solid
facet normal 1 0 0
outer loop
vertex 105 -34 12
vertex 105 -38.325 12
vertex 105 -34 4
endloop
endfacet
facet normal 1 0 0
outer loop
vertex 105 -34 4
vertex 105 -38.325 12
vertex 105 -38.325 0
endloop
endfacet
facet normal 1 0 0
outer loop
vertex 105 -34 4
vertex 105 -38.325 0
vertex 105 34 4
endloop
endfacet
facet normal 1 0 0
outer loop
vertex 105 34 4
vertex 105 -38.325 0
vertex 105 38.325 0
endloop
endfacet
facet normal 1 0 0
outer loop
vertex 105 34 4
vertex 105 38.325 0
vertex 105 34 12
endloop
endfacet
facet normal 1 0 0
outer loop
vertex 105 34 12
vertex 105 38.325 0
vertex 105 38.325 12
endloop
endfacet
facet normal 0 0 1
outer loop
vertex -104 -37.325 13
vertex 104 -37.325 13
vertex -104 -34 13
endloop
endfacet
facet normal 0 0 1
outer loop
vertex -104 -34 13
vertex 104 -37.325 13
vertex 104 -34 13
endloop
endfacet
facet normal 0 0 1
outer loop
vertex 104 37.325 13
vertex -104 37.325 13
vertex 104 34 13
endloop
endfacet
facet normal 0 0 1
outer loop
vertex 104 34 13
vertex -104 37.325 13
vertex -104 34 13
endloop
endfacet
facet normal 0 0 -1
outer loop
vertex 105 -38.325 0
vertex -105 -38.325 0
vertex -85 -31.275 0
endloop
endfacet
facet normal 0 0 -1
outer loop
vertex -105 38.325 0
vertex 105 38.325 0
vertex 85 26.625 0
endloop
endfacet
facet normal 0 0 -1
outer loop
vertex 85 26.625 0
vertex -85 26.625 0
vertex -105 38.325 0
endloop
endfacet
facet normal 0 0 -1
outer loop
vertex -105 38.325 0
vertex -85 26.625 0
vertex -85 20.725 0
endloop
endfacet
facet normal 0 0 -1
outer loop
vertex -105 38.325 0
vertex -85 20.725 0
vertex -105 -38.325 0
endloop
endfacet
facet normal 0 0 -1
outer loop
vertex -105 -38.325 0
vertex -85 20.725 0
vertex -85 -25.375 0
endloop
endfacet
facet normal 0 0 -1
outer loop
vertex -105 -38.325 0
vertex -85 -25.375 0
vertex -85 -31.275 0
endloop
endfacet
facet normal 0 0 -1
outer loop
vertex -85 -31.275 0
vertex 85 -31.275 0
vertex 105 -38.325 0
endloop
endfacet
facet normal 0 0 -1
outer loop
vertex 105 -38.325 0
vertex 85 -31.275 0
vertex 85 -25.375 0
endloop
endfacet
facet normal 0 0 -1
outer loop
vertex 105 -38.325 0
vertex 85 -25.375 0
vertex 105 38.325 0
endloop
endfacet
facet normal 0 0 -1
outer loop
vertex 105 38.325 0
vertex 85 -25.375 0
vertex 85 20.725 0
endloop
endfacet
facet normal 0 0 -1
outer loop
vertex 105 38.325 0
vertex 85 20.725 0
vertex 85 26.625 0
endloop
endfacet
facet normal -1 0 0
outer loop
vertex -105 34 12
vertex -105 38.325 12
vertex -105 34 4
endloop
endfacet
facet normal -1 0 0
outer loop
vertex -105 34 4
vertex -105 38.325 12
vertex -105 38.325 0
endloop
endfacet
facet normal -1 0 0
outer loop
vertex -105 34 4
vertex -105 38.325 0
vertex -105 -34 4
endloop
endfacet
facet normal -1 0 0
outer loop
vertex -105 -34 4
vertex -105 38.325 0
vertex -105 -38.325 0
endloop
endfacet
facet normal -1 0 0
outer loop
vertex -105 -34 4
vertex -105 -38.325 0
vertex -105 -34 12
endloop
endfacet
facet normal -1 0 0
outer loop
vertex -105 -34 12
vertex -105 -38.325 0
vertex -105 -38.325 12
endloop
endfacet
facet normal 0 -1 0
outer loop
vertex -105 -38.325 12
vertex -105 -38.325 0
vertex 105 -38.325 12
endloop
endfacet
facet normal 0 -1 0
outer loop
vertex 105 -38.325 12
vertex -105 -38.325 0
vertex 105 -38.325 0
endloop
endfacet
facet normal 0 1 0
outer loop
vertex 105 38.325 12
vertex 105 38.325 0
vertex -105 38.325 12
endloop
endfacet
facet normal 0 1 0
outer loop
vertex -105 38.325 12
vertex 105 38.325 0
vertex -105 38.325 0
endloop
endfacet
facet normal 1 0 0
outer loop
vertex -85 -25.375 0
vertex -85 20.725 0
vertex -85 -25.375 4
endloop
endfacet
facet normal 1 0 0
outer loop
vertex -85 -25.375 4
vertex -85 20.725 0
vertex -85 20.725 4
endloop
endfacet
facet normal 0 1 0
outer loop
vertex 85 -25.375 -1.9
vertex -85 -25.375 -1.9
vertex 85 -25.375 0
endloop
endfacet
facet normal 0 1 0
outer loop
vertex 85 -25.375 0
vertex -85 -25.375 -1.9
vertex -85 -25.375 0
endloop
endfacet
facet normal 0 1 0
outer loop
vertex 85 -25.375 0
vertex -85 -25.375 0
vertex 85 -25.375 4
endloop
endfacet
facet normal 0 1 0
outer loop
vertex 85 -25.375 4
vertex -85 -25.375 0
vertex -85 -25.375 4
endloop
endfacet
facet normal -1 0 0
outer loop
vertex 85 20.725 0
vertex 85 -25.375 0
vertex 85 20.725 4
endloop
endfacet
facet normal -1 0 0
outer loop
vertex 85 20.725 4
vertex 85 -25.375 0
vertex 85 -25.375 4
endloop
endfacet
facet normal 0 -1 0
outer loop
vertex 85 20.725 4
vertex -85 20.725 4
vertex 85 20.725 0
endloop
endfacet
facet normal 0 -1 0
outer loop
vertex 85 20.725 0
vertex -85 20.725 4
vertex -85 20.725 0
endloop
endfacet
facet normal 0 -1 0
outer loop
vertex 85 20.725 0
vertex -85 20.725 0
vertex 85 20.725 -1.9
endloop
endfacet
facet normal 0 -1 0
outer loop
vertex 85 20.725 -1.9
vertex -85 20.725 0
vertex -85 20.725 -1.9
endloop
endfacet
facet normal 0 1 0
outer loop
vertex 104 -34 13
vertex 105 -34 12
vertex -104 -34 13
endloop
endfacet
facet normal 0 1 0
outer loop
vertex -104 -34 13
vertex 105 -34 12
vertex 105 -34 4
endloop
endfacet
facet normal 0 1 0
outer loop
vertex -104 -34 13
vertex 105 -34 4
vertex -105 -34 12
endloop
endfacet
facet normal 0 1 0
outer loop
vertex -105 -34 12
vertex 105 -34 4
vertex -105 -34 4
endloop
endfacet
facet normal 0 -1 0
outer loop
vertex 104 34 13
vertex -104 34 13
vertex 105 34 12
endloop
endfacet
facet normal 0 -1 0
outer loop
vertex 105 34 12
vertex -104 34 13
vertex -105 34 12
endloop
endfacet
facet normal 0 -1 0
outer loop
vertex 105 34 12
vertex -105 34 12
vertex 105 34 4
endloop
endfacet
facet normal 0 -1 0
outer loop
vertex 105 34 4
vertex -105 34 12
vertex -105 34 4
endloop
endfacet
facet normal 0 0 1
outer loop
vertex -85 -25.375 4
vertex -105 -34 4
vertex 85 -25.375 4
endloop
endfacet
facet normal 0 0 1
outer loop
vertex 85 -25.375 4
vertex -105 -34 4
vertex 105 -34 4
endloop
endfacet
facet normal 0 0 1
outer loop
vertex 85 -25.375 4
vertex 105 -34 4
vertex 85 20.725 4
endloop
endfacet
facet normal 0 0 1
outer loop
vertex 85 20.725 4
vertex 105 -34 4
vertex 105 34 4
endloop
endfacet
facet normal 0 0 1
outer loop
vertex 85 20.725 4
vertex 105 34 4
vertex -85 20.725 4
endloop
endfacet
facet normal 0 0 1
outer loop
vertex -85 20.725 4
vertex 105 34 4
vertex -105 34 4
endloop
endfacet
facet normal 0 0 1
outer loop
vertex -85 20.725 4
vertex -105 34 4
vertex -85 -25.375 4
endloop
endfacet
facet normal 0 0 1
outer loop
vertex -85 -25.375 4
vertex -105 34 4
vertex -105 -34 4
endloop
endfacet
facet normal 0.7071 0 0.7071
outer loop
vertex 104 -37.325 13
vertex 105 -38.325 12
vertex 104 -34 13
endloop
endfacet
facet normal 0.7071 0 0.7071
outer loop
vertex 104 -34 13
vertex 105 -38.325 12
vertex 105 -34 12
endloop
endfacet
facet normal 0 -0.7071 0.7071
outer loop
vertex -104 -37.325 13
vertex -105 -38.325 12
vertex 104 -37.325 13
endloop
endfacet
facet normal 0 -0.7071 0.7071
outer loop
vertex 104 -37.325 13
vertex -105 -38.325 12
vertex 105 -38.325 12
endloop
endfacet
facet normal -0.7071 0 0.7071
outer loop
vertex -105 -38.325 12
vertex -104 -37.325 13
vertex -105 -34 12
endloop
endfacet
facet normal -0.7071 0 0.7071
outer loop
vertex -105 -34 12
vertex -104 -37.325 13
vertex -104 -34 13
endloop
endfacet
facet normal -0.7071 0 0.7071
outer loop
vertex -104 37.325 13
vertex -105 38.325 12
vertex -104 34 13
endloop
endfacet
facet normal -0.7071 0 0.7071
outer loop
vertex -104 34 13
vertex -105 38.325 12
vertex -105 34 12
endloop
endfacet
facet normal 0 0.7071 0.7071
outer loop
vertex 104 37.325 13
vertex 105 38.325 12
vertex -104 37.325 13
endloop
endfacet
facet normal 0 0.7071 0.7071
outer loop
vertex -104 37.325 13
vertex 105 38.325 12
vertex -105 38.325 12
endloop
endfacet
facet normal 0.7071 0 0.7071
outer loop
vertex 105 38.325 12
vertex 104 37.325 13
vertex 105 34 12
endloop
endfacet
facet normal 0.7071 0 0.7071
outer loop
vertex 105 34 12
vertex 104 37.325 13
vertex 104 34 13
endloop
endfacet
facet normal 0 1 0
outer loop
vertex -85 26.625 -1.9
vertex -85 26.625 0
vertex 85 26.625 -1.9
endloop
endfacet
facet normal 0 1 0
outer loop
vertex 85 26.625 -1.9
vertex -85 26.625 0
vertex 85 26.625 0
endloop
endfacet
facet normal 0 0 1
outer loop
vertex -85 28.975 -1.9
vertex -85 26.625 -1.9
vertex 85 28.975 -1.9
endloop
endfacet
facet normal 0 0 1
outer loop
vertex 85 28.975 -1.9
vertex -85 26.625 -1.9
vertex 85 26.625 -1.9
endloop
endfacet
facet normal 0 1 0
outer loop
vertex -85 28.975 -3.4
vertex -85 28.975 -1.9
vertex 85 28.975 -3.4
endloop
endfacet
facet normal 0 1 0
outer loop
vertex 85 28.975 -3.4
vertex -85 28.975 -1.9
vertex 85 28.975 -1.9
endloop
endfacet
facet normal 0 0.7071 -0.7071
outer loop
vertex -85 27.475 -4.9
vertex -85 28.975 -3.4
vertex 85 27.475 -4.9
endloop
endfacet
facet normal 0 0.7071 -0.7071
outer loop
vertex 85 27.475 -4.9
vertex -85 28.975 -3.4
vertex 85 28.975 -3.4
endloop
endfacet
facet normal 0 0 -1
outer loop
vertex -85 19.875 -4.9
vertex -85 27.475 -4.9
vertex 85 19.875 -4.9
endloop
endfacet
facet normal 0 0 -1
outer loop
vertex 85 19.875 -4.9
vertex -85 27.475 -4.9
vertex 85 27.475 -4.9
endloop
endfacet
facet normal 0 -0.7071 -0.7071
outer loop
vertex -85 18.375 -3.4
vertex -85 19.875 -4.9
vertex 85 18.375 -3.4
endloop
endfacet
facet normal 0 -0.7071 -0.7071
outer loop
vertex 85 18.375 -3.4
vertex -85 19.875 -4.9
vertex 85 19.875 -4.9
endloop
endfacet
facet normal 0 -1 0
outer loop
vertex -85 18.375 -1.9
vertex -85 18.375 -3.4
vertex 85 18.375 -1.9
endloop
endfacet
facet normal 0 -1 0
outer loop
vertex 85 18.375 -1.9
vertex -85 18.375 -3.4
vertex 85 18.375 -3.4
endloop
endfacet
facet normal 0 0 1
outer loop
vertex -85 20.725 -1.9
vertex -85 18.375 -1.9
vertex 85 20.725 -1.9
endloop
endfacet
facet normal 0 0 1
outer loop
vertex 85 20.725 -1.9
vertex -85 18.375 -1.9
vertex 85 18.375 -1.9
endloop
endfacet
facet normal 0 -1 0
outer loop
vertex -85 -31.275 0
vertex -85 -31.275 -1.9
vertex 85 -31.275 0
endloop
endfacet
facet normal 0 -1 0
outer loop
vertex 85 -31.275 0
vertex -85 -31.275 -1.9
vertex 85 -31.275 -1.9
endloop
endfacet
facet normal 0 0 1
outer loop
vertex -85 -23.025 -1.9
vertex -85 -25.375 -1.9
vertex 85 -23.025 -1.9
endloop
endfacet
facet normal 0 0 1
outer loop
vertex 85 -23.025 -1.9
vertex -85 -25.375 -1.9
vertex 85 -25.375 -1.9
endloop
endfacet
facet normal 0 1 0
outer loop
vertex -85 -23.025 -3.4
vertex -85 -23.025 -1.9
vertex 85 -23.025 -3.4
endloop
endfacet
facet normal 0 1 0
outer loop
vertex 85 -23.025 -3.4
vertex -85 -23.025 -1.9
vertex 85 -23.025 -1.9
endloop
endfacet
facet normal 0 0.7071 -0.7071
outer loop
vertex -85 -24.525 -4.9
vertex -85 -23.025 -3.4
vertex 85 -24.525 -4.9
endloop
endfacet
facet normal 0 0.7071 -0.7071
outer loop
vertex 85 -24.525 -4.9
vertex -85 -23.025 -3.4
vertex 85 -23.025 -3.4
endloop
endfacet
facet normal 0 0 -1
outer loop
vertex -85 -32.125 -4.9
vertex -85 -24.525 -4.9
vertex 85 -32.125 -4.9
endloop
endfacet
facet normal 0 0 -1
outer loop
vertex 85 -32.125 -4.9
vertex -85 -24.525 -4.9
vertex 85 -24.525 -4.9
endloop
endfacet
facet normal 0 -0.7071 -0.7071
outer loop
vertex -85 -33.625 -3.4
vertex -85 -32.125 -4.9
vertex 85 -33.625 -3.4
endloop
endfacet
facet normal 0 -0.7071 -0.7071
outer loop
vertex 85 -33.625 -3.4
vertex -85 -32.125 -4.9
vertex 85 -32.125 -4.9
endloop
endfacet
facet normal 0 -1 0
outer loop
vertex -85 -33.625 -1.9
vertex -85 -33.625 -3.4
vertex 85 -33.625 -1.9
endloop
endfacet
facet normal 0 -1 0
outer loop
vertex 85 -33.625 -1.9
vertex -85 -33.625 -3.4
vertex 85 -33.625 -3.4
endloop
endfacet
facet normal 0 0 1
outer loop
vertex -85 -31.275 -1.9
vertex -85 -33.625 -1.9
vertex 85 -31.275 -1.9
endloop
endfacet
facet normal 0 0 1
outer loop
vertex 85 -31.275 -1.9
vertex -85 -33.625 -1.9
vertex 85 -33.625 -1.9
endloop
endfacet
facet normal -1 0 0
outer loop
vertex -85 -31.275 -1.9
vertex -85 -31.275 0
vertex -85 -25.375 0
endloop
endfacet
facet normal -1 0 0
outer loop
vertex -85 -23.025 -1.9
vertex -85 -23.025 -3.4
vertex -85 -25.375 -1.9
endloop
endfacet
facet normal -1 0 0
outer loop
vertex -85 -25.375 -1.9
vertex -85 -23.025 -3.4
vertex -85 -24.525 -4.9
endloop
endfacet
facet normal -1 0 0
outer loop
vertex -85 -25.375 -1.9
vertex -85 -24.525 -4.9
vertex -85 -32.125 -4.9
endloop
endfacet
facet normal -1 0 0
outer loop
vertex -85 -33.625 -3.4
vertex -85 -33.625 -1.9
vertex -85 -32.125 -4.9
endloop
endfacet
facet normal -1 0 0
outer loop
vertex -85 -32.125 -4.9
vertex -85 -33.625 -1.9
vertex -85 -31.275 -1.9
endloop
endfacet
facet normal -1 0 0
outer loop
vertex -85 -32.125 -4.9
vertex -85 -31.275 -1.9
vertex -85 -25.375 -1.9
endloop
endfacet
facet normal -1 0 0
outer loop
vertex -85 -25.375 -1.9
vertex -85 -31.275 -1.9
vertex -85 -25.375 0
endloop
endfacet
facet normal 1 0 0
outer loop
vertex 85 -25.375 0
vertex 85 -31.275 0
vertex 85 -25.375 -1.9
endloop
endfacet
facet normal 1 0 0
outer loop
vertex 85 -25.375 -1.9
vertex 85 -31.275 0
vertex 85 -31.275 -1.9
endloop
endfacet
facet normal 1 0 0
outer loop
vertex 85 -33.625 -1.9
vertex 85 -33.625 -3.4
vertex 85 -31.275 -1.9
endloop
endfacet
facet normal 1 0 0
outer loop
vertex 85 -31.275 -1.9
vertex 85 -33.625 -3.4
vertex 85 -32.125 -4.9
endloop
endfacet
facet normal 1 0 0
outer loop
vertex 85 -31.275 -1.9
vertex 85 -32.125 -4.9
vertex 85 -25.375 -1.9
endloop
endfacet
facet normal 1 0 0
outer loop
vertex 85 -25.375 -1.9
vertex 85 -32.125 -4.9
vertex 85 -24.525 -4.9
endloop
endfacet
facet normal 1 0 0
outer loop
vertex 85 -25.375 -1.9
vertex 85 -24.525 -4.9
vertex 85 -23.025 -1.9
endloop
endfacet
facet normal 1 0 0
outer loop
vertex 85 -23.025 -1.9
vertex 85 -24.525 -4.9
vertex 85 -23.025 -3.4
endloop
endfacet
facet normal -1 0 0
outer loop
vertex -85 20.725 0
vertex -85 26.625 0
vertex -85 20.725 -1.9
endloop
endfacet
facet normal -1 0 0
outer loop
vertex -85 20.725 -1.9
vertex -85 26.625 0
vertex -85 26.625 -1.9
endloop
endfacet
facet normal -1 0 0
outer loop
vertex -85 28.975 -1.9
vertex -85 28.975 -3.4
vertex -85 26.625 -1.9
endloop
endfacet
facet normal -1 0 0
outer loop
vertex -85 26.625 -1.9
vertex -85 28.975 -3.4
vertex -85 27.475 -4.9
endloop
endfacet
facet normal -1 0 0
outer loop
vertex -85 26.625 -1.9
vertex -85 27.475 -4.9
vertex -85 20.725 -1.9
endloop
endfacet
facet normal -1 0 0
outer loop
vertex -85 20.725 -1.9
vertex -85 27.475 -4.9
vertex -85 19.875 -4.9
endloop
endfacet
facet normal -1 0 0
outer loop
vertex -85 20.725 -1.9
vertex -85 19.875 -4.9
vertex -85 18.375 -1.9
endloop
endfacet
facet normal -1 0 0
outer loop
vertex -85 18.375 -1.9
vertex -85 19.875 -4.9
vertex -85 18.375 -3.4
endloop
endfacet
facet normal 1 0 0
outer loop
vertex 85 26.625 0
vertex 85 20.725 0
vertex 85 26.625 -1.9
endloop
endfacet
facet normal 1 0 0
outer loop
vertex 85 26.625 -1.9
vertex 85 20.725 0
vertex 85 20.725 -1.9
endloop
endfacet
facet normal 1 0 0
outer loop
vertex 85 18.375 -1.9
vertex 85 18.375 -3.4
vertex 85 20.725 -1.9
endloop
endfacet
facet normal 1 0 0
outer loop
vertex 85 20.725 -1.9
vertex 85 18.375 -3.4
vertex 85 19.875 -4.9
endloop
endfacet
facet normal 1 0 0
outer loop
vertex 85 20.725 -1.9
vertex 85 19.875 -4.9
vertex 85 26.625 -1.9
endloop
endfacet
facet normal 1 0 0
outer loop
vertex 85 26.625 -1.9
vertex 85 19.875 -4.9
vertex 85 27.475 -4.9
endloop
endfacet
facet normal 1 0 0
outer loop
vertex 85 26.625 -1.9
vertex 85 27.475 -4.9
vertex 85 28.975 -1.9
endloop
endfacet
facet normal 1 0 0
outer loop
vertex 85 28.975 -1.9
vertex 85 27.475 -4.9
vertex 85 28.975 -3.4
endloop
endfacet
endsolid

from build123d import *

# Parameters (mm, degrees)
SKETCH_1_W          = 210
SKETCH_1_H          = 76.65
SKETCH_1_W_2        = 170
SKETCH_1_H_2        = 46.1
EXTRUDE_1_DEPTH     = 13
SKETCH_2_W          = 210
SKETCH_2_H          = 68
CUT_EXTRUDE_1_DEPTH = 9
CHAMFER_1_SIZE      = 1
EXTRUDE_2_DEPTH     = 210
SKETCH_7_W          = 20
SKETCH_7_H          = 76.65
CUT_EXTRUDE_2_DEPTH = 4.9


with BuildPart() as part:
    # 草图1 → 凸台-拉伸1 (new body)
    with BuildSketch(Plane.XY):
        Rectangle(SKETCH_1_W, SKETCH_1_H)
        with Locations((0, -2.325)):
            Rectangle(SKETCH_1_W_2, SKETCH_1_H_2, mode=Mode.SUBTRACT)
    extrude(amount=EXTRUDE_1_DEPTH)

    # 草图2 → 切除-拉伸1 (cut)
    with BuildSketch(Plane.XY.offset(13)):
        Rectangle(SKETCH_2_W, SKETCH_2_H)
    extrude(amount=-CUT_EXTRUDE_1_DEPTH, mode=Mode.SUBTRACT)

    # 倒角1
    chamfer_1_edges = [part.edges().sort_by_distance(p)[0] for p in [
        (105, -36.1625, 13),
        (0, 38.325, 13),
        (105, 36.1625, 13),
        (-105, -36.1625, 13),
        (-105, 36.1625, 13),
        (0, -38.325, 13),
    ]]
    chamfer(chamfer_1_edges, length=CHAMFER_1_SIZE)

    # 草图6 → 凸台-拉伸2 (add)
    with BuildSketch(Plane(origin=(105, 0, 0), x_dir=(0, 0, -1), z_dir=(1, 0, 0))):
        Polygon((0, 20.725), (0, 26.625), (1.9, 26.625), (1.9, 28.975), (3.4, 28.975), (4.9, 27.475), (4.9, 19.875), (3.4, 18.375), (1.9, 18.375), (1.9, 20.725), align=None)
        Polygon((0, -31.275), (0, -25.375), (1.9, -25.375), (1.9, -23.025), (3.4, -23.025), (4.9, -24.525), (4.9, -32.125), (3.4, -33.625), (1.9, -33.625), (1.9, -31.275), align=None)
    extrude(amount=-EXTRUDE_2_DEPTH)

    # 草图7 → 切除-拉伸2 (cut)
    with BuildSketch(Plane(origin=(0, 0, -4.9), x_dir=(-1, 0, 0), z_dir=(0, 0, -1))):
        with Locations((-95, 0)):
            Rectangle(SKETCH_7_W, SKETCH_7_H)
        with Locations((95, 0)):
            Rectangle(SKETCH_7_W, SKETCH_7_H)
    extrude(amount=-CUT_EXTRUDE_2_DEPTH, mode=Mode.SUBTRACT)


solid = part.part
